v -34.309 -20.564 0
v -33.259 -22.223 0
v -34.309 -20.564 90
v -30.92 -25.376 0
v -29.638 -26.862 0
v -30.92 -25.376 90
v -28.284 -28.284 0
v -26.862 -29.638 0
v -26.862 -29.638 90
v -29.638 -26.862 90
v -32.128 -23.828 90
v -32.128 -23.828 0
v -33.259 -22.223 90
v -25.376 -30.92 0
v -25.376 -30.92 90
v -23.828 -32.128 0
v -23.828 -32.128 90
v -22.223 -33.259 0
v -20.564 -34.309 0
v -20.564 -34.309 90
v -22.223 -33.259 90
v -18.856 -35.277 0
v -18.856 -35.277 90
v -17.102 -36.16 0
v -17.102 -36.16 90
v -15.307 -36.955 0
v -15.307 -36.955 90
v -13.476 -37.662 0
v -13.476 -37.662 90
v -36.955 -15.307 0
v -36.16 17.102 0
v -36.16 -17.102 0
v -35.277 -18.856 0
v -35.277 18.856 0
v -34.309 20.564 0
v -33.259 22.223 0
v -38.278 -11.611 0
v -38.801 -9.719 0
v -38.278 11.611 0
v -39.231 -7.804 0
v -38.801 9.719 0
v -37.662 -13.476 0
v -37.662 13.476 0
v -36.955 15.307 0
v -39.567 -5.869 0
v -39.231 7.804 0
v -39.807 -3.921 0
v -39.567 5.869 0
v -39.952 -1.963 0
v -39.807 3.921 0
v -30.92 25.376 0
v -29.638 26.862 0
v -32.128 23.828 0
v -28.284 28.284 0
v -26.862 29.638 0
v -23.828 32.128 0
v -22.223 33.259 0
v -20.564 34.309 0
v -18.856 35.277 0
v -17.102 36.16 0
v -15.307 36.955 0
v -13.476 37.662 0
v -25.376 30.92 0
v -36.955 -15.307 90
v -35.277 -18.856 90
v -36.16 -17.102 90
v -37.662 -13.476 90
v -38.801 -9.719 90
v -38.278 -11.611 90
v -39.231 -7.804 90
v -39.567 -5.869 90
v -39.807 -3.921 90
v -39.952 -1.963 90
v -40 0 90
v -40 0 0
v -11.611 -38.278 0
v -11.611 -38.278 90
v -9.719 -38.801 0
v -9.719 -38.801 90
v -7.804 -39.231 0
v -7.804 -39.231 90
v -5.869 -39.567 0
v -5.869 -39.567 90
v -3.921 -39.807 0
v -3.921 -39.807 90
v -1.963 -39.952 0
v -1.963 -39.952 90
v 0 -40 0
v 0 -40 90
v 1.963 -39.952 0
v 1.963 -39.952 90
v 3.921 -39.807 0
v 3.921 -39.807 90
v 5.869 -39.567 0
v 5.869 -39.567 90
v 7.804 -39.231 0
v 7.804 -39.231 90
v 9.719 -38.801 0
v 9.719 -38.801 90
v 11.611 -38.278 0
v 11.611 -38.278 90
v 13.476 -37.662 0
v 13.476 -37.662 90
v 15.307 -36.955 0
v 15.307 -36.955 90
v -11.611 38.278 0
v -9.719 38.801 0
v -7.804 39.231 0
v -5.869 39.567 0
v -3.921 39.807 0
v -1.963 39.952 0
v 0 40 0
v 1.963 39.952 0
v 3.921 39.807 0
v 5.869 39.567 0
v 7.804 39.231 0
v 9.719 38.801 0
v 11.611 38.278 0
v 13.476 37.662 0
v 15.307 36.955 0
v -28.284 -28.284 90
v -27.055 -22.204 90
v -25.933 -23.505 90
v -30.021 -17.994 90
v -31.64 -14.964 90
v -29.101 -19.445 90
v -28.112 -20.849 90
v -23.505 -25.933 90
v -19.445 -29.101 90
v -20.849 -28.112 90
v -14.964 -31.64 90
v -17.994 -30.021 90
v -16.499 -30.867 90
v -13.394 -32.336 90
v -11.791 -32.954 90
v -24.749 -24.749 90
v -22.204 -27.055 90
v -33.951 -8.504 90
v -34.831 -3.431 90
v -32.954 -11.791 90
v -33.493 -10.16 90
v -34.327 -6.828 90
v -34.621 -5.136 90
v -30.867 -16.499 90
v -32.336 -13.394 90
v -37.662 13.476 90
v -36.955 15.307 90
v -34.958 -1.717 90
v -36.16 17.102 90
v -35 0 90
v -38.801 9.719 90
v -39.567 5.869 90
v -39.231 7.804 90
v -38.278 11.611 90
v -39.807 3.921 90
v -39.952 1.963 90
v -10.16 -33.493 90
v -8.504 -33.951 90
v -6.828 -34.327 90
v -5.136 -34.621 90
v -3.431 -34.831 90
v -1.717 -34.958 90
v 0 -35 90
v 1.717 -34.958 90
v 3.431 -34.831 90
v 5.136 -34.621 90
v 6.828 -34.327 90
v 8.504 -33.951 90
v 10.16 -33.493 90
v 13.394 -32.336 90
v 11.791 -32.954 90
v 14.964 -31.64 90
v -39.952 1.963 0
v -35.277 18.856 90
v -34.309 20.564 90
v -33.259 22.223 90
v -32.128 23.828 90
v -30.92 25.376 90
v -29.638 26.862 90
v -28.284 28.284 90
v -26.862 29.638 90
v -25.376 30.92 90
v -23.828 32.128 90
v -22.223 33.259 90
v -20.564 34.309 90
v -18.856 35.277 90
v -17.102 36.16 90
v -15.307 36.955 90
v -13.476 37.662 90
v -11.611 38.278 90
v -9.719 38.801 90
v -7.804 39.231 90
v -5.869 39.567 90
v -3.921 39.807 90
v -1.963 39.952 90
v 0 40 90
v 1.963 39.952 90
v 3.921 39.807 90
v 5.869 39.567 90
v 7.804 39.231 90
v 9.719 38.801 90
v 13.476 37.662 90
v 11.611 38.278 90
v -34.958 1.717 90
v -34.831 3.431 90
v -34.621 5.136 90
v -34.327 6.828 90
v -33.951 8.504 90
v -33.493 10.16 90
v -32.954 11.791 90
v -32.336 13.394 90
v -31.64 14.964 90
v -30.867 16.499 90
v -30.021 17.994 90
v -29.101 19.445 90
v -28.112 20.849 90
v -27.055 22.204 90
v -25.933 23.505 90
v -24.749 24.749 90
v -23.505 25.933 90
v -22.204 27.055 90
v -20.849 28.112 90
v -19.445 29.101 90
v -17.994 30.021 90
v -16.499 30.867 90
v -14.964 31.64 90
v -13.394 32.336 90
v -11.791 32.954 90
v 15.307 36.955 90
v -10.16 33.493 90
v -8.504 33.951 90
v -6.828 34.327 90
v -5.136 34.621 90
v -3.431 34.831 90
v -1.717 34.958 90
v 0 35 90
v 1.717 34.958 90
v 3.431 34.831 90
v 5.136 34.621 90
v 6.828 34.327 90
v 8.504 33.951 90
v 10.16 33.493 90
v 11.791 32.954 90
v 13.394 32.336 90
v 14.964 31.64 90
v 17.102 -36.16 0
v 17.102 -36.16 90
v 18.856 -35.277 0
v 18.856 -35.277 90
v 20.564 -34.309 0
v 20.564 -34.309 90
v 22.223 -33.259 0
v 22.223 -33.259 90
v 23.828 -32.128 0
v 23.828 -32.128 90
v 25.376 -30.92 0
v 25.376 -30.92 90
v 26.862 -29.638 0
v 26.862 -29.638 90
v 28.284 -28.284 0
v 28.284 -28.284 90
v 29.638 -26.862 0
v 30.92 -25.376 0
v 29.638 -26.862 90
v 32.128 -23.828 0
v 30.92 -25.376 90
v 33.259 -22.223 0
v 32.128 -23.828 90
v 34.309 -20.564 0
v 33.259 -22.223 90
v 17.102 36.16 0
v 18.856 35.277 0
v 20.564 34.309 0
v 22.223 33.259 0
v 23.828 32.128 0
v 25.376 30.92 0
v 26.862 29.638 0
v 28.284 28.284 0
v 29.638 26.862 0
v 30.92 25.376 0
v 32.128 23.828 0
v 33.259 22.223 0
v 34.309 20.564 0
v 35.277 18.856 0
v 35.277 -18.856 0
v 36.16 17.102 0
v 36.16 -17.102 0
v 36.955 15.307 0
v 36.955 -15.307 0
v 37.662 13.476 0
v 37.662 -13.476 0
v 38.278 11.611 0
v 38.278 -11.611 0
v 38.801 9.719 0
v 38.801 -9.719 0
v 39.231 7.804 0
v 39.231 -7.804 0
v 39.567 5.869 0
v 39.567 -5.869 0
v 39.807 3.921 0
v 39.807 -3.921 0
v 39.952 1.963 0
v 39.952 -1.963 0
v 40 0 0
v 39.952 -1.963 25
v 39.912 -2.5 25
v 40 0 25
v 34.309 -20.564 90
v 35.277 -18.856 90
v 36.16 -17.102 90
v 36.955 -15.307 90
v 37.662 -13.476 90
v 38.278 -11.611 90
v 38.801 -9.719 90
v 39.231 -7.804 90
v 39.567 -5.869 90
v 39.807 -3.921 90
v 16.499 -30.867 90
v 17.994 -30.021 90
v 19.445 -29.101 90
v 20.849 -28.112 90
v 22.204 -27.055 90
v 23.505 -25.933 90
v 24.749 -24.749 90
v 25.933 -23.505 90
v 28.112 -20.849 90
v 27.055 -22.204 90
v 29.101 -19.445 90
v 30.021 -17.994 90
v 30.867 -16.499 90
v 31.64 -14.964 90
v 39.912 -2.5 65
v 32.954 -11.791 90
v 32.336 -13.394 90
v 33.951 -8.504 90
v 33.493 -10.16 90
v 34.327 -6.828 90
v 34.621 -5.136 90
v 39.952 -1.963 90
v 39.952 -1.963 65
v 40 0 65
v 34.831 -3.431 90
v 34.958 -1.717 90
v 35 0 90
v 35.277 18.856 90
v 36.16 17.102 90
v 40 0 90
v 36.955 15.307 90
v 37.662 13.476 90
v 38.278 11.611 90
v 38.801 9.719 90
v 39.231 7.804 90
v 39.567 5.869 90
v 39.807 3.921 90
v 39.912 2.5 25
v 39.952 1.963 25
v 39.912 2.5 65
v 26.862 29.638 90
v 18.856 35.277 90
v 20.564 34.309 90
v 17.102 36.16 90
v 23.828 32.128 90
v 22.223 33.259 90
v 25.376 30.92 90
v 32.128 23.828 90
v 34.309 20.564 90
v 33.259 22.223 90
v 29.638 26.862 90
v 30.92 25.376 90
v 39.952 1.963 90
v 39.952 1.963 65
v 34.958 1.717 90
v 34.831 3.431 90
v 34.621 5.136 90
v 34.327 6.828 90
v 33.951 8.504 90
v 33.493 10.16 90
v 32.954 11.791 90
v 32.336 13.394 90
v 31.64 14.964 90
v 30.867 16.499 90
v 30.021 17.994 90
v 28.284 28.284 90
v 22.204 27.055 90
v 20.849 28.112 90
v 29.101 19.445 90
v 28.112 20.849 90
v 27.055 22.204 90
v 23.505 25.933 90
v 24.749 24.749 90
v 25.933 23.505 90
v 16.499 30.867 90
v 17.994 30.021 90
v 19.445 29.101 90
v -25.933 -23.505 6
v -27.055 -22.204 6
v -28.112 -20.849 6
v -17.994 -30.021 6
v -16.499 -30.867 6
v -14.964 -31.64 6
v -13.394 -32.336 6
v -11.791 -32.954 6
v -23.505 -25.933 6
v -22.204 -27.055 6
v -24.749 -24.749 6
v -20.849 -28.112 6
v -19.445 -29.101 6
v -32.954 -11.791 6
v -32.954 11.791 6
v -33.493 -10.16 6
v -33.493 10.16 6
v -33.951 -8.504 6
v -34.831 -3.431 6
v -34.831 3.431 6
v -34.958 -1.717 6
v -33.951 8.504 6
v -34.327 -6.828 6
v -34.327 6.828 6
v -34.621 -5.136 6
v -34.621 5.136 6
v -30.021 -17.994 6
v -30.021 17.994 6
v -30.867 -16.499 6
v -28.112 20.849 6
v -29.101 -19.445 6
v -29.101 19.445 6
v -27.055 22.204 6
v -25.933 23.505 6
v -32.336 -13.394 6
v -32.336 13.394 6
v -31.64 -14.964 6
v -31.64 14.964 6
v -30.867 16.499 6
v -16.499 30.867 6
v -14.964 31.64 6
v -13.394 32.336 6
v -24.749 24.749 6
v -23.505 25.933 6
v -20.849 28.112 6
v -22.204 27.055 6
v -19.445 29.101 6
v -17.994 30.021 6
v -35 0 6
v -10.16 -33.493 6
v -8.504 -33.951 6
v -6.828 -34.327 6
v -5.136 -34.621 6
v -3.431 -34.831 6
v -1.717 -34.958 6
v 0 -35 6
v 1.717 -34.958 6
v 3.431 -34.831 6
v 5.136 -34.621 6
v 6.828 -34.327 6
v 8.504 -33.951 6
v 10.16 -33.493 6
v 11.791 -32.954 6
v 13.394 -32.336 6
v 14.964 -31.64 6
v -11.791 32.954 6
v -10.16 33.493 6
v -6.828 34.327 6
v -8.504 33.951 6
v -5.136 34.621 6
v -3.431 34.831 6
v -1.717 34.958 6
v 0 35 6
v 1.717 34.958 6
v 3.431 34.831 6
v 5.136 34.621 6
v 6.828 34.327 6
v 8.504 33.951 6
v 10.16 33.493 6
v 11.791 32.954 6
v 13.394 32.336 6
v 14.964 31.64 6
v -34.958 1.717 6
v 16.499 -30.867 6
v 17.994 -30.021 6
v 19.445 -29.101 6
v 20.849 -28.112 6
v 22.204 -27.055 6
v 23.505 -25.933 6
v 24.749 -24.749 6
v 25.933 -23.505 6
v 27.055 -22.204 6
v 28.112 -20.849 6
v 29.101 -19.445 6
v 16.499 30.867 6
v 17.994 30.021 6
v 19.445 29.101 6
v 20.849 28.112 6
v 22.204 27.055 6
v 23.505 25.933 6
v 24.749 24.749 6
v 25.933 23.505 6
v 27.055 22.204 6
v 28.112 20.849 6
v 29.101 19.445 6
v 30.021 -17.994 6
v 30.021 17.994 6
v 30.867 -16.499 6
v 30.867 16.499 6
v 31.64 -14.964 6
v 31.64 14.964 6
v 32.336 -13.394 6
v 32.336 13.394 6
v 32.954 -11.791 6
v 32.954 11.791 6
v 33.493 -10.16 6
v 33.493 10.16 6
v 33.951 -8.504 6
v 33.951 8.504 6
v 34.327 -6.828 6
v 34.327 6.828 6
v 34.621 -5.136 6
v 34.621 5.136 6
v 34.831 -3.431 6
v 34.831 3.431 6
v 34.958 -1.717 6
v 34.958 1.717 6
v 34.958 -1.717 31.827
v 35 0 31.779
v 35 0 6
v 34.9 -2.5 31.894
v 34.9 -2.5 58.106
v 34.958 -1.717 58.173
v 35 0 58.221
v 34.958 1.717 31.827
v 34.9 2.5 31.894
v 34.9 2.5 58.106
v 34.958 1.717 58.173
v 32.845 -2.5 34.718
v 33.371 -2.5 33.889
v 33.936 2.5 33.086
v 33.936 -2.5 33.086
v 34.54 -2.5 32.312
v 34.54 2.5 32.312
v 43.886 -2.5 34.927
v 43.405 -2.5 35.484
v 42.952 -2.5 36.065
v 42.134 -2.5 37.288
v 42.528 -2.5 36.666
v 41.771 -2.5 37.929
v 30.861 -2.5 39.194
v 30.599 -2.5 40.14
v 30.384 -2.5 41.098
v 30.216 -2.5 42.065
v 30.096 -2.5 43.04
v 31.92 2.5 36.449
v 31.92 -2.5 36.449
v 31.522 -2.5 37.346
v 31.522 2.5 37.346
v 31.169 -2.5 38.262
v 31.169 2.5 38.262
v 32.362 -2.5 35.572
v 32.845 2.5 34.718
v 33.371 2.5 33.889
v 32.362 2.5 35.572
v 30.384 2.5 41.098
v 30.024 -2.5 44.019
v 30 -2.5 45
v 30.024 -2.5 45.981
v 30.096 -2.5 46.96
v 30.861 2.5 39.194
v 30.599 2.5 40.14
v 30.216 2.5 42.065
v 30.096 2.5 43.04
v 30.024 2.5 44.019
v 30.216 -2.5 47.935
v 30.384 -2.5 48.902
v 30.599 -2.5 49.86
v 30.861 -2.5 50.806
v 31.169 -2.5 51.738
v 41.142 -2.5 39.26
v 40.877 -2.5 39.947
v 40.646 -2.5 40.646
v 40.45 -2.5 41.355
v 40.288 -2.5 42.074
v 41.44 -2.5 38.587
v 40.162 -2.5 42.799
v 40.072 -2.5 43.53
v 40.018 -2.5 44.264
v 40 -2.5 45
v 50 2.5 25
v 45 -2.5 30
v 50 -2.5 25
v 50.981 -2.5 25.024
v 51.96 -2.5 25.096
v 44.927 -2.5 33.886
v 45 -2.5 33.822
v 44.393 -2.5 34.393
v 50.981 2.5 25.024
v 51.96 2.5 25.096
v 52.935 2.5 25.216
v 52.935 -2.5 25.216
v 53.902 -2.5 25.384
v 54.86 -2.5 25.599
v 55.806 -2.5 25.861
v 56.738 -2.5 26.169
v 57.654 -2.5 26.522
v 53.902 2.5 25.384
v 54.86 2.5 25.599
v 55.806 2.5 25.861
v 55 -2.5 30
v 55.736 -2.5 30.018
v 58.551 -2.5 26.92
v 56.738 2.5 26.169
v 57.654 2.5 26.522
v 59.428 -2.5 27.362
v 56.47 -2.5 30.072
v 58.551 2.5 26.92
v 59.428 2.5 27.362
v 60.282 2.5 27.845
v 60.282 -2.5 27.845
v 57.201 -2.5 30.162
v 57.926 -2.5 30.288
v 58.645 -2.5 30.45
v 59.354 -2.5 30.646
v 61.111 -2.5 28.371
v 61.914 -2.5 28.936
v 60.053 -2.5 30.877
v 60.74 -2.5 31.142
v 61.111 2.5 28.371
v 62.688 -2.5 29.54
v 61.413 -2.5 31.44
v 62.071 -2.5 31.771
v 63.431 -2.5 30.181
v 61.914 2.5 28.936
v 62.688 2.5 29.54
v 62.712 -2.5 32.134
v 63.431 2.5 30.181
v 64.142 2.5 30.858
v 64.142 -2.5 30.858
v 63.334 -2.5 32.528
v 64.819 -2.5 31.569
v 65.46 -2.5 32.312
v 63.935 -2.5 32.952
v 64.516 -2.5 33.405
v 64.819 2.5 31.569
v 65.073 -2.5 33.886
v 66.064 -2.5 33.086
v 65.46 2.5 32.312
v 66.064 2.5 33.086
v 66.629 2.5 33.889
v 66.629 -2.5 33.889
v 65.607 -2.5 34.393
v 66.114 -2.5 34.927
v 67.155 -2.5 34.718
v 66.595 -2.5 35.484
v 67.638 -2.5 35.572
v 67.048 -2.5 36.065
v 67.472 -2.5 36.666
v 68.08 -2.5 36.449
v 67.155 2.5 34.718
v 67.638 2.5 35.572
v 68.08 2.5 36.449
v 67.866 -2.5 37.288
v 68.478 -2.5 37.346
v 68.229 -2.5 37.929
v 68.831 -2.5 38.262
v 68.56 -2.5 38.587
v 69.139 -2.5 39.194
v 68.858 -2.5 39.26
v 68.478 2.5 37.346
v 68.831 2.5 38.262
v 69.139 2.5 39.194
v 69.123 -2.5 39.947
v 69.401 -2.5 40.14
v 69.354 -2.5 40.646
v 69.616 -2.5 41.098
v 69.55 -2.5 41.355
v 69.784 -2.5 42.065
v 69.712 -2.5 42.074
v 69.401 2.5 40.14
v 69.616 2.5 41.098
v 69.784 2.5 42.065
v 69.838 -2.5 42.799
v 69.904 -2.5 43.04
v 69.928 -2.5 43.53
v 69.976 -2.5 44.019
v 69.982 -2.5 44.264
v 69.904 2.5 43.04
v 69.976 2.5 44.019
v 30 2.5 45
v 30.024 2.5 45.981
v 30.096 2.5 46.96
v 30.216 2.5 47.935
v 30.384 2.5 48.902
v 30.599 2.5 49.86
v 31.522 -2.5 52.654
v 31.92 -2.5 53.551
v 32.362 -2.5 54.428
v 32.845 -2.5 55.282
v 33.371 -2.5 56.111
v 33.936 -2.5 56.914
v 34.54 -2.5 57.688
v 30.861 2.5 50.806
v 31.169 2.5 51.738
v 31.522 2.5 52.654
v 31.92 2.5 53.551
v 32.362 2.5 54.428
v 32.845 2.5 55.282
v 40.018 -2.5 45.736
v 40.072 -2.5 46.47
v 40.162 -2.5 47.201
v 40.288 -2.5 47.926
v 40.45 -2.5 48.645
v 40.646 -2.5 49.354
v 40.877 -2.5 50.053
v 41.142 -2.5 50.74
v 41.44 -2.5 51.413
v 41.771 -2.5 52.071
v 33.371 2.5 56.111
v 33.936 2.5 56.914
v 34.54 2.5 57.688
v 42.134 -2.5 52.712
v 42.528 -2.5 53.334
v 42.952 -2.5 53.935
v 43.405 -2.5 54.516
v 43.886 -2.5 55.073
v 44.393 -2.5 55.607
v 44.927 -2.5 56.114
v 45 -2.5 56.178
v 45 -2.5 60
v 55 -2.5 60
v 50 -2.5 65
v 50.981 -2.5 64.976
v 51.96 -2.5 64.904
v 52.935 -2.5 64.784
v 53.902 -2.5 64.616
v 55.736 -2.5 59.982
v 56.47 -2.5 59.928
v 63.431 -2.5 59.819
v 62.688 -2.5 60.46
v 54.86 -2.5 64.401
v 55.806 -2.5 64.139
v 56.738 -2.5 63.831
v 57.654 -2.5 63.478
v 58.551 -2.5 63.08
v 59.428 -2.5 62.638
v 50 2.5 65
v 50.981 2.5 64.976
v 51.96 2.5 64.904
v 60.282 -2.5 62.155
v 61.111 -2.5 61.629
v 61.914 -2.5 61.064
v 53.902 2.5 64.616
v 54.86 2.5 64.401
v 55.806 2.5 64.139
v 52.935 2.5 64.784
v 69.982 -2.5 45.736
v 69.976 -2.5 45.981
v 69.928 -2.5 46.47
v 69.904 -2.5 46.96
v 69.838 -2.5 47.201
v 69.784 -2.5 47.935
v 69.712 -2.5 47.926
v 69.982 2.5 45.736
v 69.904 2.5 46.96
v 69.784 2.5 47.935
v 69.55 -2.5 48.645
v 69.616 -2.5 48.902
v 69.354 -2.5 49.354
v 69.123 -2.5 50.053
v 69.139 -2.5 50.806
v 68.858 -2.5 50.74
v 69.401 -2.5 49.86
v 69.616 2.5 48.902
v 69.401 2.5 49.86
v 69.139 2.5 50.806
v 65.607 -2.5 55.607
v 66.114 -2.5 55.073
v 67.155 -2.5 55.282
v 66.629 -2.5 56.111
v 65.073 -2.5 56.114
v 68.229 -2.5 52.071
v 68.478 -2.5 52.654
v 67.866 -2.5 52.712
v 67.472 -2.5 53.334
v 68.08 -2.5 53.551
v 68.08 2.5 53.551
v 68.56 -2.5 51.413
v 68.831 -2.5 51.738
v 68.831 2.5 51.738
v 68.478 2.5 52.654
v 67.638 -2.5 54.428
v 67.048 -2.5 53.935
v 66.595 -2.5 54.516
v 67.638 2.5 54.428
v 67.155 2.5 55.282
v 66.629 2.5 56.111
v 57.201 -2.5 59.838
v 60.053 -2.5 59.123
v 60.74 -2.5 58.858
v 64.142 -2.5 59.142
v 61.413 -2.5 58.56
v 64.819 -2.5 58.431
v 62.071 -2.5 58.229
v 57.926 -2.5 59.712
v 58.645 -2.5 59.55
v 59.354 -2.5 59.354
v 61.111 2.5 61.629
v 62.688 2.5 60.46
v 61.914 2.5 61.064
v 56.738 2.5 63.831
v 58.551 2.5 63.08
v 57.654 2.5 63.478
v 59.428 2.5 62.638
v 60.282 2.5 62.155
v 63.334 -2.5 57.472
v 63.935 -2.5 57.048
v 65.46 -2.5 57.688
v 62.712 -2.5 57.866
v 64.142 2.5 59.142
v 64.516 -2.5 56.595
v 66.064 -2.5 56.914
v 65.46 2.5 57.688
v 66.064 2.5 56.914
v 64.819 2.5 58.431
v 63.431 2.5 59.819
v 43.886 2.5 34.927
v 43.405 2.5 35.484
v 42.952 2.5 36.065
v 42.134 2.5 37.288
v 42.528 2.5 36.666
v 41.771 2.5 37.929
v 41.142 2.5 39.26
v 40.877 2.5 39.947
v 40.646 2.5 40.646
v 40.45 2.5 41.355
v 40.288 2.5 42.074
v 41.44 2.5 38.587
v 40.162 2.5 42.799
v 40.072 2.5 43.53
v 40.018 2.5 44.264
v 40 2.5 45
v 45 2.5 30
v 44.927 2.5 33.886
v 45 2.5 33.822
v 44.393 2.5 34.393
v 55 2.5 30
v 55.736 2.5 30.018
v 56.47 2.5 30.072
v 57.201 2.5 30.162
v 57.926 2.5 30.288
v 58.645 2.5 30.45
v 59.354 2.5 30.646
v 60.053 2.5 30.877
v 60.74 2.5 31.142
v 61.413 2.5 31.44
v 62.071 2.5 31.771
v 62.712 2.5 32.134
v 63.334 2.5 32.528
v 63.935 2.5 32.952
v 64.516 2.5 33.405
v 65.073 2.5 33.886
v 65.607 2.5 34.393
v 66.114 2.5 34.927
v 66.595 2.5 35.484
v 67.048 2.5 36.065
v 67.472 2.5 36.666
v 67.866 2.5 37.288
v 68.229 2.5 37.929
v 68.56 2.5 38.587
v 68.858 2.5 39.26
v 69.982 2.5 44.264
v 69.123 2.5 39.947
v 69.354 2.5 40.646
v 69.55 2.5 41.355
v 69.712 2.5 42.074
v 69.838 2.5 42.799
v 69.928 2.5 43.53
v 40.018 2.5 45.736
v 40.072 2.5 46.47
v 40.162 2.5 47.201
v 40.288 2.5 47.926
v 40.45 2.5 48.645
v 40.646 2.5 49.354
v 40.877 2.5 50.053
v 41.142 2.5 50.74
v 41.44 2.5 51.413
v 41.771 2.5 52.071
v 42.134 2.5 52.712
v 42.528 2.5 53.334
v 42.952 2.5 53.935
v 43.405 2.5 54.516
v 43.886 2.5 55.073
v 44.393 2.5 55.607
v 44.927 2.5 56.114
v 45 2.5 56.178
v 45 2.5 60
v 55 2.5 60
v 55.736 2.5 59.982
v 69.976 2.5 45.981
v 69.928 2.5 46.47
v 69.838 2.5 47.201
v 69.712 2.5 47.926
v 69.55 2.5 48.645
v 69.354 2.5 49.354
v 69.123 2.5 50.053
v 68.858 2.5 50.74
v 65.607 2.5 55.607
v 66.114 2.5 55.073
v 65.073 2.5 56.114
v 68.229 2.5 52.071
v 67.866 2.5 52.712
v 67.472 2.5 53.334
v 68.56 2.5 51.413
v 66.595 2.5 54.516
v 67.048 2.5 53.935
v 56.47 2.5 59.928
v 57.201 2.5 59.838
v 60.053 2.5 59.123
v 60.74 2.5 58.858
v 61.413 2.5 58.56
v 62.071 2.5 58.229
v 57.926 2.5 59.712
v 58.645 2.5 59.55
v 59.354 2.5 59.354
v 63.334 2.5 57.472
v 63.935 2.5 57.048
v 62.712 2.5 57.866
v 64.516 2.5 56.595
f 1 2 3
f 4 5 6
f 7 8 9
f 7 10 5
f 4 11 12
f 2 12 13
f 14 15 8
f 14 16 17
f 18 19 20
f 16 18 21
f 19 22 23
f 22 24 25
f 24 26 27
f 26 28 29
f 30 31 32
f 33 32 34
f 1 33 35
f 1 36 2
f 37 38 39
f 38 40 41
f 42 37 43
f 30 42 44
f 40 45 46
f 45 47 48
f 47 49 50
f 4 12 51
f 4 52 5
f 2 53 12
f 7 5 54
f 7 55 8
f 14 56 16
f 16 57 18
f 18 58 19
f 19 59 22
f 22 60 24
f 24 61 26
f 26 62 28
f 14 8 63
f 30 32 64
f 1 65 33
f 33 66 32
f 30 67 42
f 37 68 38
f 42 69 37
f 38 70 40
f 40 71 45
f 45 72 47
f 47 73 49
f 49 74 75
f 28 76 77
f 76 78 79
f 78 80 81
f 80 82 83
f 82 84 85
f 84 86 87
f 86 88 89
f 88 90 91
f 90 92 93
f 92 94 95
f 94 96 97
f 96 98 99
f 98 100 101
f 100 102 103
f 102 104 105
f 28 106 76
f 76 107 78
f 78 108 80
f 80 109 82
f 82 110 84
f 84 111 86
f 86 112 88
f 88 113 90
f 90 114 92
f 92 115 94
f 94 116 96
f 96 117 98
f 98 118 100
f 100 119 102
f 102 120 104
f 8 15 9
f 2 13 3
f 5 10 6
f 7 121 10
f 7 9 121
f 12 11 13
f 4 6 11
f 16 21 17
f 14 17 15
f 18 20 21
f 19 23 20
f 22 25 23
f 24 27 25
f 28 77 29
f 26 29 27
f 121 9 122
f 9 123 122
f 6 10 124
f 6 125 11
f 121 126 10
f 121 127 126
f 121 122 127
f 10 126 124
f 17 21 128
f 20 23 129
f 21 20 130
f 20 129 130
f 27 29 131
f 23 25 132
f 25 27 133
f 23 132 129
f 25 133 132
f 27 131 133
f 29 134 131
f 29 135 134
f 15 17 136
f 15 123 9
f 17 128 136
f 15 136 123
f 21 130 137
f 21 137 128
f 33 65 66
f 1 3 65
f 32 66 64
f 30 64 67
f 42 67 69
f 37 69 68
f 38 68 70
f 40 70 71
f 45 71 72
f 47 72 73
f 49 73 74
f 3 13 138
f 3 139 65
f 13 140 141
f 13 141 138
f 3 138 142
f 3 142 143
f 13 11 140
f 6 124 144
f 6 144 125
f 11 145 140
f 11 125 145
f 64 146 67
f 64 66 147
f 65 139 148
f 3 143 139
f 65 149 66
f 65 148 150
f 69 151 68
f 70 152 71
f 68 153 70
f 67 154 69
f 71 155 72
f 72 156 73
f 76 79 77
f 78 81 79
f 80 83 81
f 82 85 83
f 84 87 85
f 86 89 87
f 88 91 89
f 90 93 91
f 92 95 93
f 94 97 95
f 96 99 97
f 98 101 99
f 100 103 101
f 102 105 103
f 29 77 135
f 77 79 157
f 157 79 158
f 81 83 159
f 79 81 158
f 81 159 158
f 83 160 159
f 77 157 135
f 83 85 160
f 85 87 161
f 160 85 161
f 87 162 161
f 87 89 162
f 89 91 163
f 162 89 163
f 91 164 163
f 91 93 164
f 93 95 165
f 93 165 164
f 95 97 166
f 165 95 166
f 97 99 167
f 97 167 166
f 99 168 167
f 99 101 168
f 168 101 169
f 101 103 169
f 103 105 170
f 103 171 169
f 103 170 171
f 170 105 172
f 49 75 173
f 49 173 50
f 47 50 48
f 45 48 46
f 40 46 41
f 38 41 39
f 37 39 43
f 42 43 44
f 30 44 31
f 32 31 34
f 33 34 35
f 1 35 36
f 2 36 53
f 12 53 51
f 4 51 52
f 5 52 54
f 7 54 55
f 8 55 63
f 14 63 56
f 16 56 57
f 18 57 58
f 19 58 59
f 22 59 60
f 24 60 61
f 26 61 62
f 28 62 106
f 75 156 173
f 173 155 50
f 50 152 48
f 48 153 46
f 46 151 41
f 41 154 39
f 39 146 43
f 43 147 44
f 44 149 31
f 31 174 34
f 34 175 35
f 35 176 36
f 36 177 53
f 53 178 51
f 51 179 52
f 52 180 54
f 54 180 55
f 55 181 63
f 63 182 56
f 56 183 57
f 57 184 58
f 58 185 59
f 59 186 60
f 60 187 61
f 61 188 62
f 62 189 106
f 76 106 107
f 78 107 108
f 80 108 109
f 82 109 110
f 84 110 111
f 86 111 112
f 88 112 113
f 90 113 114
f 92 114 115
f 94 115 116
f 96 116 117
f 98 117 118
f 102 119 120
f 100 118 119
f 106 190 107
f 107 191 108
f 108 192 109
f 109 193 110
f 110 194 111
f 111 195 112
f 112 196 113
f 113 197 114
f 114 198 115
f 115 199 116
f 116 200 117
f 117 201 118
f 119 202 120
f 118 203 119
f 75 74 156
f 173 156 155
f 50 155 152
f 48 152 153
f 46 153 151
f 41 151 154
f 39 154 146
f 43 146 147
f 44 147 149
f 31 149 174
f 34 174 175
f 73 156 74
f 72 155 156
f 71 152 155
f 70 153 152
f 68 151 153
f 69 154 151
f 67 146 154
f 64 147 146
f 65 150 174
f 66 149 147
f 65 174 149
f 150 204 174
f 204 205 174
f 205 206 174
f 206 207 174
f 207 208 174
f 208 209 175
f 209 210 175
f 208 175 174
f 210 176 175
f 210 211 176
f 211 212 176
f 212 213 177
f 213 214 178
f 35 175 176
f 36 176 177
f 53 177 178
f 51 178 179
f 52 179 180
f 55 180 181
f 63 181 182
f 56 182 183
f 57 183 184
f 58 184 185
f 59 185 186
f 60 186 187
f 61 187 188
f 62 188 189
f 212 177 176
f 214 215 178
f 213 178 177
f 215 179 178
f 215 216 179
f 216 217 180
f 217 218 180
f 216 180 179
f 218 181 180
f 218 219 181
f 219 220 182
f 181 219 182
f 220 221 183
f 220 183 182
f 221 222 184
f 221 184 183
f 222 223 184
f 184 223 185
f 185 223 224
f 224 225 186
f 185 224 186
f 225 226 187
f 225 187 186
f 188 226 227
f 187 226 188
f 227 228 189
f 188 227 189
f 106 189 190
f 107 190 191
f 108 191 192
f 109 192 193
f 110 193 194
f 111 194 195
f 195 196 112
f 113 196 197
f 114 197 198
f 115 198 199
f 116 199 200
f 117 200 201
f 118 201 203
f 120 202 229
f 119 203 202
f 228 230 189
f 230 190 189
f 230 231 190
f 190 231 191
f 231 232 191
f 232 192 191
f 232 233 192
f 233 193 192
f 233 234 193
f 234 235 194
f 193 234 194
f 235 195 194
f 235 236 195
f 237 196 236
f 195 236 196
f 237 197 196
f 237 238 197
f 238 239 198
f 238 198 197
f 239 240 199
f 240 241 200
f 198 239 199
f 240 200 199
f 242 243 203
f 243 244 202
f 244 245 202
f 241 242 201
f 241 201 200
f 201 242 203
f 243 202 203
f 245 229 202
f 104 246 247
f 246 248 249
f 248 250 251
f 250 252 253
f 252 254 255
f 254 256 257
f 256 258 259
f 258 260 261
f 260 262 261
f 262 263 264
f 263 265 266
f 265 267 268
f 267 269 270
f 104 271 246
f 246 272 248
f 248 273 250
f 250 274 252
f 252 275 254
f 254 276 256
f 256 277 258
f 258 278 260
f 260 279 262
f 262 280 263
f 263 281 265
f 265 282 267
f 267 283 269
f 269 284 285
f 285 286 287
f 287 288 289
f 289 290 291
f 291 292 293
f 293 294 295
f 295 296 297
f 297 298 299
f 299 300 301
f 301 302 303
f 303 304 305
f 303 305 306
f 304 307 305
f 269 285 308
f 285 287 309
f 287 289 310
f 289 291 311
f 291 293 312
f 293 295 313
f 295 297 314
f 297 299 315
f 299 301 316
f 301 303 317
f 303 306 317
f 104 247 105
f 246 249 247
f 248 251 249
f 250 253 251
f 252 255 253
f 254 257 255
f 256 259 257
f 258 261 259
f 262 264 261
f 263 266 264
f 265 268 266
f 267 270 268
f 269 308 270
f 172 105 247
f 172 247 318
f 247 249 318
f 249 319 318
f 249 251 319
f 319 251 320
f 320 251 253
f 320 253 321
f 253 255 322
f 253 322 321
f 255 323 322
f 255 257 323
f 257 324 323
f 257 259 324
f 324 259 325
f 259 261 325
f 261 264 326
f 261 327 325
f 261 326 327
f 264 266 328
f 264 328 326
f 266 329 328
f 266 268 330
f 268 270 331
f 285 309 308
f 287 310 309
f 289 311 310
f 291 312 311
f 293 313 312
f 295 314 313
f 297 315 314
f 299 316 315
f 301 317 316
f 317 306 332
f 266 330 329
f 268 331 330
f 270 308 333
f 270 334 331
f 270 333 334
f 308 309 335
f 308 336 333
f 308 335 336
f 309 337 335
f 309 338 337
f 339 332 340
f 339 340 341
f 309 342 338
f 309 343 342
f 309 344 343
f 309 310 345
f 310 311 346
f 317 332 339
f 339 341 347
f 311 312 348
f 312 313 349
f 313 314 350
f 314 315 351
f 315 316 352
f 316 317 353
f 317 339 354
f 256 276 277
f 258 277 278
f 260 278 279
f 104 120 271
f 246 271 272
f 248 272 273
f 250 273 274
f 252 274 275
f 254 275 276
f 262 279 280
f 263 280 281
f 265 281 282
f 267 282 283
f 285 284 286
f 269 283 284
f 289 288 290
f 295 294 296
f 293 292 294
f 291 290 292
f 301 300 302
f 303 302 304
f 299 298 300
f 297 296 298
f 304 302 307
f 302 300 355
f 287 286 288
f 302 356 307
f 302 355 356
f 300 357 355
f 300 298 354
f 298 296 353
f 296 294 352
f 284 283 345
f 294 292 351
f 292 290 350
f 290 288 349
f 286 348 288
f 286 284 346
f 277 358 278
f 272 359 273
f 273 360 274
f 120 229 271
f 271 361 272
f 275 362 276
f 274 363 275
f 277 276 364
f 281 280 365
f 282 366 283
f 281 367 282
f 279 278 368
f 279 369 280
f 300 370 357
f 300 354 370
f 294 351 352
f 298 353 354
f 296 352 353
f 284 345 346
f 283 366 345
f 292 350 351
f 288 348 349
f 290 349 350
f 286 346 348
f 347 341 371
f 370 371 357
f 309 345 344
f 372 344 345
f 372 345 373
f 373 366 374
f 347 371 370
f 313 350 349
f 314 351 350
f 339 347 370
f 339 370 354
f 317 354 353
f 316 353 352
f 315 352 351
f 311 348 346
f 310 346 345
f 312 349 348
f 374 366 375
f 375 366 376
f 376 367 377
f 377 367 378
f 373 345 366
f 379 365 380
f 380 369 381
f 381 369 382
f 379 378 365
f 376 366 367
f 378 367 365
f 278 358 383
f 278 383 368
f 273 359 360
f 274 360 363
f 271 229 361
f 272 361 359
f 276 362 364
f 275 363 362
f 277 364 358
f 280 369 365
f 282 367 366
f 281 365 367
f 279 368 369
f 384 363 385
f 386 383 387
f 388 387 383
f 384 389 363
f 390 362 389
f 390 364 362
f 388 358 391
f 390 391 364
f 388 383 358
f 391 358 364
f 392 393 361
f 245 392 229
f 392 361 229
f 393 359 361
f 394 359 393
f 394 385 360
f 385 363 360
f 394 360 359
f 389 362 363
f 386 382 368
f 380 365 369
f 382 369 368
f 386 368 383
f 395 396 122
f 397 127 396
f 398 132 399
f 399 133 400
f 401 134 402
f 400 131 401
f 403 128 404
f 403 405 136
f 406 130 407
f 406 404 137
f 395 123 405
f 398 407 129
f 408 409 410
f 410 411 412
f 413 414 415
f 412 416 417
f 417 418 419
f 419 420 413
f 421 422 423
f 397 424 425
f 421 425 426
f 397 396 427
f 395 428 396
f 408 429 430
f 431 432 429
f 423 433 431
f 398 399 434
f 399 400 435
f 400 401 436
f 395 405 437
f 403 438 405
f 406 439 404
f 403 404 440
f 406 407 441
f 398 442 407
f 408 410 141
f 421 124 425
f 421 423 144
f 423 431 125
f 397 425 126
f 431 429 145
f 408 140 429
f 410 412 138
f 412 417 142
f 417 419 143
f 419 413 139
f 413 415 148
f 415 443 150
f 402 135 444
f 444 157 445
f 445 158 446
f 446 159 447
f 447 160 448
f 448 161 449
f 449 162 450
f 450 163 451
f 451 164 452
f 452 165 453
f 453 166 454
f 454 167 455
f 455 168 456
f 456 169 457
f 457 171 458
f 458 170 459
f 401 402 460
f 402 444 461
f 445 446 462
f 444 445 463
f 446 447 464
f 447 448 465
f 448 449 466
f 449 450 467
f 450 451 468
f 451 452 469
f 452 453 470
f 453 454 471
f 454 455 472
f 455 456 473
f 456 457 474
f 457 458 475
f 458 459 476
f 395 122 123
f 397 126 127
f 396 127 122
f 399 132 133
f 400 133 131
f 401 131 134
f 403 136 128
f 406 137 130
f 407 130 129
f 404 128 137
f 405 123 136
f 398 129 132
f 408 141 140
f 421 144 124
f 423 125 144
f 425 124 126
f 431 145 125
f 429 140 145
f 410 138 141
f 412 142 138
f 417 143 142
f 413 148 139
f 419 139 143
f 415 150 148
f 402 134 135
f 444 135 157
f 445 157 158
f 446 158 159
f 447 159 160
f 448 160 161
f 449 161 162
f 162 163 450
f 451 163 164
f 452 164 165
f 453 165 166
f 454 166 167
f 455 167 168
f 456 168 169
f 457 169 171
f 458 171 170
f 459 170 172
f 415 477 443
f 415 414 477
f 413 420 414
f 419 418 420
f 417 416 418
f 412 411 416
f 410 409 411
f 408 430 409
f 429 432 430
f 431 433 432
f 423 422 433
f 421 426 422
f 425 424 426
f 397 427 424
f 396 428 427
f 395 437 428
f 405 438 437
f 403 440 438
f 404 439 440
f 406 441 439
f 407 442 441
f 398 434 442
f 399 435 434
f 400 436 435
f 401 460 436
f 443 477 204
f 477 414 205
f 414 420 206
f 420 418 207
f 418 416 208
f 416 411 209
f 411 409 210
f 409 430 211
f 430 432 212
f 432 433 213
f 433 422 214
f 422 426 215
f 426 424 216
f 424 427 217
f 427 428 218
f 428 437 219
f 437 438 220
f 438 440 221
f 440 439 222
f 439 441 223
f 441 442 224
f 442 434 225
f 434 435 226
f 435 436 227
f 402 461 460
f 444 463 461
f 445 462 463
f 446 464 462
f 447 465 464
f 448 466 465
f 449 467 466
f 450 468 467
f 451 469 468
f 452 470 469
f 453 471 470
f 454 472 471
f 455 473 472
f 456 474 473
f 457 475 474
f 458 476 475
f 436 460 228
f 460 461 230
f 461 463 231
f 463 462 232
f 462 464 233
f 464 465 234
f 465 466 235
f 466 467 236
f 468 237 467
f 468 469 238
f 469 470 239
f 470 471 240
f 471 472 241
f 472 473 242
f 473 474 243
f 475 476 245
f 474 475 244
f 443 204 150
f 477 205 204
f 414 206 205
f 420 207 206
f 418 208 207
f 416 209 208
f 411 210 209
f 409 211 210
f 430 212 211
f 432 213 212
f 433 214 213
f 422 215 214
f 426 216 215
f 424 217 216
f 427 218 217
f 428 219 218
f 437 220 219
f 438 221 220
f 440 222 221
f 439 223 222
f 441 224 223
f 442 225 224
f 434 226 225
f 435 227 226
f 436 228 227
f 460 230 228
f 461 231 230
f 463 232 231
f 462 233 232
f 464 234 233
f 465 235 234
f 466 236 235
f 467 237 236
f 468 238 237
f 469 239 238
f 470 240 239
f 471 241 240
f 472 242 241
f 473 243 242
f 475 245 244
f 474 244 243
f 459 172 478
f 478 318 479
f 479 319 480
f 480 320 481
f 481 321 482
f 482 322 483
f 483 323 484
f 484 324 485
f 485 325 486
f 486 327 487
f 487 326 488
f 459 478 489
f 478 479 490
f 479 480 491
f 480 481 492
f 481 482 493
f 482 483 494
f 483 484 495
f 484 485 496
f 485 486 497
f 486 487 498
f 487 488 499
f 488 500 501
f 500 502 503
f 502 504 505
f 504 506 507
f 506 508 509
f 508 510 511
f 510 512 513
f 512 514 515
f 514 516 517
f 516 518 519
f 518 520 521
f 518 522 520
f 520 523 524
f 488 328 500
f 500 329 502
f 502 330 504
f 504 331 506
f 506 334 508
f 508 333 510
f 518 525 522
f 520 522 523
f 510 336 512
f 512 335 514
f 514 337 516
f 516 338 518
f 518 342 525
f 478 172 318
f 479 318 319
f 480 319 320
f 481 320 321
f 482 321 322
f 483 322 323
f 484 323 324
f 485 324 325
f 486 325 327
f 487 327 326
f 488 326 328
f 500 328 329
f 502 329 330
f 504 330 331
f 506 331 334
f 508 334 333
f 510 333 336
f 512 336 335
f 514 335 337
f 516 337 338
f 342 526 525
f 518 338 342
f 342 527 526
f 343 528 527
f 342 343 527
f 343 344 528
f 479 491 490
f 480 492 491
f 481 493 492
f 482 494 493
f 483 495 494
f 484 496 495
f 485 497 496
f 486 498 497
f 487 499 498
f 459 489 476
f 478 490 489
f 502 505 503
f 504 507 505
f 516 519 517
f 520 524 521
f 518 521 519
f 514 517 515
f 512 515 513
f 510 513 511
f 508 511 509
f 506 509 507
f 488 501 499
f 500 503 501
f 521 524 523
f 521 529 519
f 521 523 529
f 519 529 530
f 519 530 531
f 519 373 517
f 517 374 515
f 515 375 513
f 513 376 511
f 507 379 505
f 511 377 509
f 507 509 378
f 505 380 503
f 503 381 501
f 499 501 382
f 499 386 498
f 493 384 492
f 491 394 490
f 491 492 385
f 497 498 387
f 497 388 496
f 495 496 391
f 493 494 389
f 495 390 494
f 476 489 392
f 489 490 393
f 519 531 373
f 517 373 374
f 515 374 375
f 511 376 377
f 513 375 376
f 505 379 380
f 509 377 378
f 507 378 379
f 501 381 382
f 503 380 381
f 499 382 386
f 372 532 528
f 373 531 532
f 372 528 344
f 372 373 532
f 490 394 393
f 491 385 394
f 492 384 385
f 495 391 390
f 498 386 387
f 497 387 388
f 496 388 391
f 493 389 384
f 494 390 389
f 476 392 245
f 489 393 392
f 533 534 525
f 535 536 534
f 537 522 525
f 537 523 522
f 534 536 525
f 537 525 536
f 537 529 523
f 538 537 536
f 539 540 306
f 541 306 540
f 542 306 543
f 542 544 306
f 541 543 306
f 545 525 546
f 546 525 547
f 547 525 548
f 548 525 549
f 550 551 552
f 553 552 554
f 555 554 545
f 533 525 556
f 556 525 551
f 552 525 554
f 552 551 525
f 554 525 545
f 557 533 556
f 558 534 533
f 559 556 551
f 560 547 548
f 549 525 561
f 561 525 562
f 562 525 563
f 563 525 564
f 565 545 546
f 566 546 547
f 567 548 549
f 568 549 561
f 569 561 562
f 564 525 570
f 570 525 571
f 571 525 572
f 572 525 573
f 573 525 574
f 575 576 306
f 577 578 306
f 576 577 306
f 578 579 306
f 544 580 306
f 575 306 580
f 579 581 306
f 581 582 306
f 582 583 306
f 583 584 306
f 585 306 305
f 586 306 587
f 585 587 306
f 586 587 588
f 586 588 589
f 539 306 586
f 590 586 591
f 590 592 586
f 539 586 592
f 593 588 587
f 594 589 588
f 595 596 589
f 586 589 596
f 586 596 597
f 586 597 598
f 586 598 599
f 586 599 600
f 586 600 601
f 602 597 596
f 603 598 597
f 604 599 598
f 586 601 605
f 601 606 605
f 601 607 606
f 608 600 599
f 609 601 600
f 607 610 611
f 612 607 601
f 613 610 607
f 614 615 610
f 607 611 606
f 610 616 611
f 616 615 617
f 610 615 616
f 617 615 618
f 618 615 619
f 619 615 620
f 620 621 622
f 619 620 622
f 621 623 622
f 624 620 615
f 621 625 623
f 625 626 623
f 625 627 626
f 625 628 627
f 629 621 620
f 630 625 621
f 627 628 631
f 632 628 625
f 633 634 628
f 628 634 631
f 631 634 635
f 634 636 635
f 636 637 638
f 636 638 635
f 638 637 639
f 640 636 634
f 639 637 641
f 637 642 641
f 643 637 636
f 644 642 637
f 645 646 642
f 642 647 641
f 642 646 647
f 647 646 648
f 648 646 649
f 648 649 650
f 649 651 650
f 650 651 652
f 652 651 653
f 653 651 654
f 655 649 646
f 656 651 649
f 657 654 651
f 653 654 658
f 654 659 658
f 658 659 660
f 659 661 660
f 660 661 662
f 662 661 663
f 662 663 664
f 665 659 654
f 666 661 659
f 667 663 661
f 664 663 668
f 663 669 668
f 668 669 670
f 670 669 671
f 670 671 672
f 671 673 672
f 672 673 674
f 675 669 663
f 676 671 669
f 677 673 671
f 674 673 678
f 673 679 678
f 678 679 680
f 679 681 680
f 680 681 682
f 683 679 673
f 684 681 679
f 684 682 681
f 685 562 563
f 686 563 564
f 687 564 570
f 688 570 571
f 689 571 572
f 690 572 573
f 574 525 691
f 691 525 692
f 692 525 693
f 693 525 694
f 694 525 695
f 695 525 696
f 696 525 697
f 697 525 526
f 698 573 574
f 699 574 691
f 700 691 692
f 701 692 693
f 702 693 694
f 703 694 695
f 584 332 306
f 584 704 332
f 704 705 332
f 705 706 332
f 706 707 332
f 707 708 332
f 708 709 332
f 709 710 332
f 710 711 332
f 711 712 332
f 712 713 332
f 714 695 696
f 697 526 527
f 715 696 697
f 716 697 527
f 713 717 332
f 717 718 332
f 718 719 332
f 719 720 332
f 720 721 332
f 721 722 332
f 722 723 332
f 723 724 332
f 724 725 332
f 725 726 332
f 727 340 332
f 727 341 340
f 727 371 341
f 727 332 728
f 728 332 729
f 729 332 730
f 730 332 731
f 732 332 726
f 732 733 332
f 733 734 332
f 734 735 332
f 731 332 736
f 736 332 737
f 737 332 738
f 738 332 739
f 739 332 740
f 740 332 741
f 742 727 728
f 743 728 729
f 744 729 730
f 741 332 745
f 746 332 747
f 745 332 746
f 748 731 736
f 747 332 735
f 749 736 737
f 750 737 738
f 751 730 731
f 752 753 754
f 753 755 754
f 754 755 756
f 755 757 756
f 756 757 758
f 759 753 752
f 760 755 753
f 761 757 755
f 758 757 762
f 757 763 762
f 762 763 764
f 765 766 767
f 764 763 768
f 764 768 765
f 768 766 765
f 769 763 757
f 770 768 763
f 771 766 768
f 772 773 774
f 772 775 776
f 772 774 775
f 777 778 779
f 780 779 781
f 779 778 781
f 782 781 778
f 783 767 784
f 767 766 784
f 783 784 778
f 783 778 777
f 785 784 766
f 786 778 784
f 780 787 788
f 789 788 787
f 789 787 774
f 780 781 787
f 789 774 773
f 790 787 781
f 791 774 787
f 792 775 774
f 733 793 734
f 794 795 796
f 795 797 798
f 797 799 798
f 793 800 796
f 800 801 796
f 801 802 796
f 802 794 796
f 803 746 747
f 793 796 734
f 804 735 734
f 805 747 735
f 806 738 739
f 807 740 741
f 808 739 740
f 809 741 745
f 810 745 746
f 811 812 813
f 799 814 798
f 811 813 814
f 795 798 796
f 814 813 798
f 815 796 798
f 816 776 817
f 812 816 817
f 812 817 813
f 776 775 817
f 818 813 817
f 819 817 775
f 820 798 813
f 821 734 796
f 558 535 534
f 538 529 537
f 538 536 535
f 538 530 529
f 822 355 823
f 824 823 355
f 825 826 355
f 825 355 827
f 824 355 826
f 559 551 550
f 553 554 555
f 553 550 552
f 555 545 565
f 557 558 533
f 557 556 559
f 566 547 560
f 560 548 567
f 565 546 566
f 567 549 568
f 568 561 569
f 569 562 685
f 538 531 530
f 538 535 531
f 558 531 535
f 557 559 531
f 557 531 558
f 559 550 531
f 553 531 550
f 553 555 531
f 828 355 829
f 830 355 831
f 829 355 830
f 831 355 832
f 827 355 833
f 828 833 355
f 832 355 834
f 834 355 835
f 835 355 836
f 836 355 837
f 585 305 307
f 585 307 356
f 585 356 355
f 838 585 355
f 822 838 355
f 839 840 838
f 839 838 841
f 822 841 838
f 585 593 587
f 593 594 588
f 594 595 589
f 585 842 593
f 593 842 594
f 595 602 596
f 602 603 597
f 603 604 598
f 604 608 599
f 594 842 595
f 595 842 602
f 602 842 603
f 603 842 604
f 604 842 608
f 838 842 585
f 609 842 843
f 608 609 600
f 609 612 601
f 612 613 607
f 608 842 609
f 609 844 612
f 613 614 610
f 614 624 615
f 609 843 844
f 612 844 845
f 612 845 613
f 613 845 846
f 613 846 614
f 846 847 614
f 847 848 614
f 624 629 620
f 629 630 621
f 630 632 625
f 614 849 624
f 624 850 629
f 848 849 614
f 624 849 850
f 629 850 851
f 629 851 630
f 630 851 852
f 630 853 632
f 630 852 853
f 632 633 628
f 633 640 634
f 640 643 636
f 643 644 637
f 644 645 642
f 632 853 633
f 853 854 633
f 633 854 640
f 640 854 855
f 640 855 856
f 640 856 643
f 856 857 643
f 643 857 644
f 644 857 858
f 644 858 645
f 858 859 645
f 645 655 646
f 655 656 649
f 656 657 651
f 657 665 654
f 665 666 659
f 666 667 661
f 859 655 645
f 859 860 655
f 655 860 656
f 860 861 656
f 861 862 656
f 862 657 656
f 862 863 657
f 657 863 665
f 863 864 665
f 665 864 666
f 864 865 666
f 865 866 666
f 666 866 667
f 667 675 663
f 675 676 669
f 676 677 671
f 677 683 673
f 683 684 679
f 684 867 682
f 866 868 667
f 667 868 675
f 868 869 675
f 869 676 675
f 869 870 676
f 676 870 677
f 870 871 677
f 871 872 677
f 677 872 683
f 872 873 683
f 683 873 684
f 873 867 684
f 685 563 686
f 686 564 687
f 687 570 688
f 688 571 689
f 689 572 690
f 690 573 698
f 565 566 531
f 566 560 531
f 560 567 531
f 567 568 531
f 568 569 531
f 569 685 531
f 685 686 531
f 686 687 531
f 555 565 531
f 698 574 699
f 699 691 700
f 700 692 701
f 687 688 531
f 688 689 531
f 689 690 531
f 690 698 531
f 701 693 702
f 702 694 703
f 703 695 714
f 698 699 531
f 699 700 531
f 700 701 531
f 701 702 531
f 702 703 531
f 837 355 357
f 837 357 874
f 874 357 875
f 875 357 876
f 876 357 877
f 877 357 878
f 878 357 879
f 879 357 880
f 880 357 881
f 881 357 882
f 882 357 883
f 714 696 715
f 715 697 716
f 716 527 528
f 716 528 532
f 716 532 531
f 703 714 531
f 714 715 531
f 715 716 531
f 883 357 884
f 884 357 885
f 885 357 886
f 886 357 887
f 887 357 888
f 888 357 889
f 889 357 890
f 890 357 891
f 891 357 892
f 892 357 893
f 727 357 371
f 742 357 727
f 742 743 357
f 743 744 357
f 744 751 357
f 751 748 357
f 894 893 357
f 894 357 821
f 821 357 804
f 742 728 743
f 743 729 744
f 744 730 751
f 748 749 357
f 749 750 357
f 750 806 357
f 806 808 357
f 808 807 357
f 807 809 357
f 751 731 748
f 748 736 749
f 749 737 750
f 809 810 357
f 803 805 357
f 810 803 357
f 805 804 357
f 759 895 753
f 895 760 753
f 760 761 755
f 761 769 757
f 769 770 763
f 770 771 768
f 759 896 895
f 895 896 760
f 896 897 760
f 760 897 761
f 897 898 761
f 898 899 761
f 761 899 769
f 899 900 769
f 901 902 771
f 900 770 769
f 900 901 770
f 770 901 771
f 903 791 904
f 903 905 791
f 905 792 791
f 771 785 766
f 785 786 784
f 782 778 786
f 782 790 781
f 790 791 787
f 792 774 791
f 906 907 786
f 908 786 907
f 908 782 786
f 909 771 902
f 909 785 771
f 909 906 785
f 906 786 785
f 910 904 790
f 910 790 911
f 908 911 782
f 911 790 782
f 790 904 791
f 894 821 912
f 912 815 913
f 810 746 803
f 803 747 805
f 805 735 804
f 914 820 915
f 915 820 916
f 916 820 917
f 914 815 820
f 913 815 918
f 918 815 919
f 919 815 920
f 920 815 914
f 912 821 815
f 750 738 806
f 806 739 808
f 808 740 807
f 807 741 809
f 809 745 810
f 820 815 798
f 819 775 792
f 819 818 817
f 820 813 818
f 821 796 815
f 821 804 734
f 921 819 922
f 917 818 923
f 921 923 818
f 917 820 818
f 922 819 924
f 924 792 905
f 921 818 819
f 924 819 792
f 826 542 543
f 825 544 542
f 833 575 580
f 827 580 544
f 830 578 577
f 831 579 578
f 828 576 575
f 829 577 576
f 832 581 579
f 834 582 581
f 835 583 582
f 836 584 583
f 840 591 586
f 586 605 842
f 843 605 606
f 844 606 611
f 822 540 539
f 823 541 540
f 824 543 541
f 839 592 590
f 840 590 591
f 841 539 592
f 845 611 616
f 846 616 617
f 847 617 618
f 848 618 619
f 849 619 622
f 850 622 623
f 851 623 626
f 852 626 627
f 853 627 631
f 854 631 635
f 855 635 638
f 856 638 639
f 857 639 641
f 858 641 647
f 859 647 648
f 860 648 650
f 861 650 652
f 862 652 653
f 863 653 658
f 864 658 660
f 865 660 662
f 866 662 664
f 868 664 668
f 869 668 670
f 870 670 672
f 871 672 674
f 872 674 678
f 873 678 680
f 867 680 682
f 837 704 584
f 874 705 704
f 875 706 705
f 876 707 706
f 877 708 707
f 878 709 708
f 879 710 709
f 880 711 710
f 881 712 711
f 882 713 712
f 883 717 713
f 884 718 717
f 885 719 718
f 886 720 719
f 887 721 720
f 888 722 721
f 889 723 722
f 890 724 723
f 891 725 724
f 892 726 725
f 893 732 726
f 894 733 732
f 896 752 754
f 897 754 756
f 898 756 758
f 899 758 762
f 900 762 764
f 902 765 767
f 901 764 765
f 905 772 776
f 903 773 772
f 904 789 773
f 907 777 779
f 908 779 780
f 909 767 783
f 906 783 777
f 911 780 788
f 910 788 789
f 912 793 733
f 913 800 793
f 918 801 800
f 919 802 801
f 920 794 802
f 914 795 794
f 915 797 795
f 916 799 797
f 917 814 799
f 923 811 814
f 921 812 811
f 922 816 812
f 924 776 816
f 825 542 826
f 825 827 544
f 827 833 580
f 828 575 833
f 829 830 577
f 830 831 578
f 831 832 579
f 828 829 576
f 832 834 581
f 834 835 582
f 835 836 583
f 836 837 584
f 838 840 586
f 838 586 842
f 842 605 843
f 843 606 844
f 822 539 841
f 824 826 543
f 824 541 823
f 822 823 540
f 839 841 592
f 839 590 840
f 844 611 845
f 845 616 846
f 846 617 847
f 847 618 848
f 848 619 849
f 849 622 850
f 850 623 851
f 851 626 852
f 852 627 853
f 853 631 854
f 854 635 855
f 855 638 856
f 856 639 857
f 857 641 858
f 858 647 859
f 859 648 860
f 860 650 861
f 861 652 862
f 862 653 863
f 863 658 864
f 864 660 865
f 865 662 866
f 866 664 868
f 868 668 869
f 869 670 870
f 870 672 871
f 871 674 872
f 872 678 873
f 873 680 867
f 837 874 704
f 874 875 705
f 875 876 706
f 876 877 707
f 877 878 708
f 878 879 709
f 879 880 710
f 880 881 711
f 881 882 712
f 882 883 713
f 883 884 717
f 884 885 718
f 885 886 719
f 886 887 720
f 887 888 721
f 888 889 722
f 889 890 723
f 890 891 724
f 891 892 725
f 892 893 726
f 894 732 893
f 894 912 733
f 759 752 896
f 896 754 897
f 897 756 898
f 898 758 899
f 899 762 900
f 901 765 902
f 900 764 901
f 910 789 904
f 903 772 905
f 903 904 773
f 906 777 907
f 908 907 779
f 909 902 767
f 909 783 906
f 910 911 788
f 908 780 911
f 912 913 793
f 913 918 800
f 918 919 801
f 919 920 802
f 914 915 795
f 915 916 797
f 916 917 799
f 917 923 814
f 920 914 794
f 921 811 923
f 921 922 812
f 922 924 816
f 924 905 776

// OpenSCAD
$fn = 128;

// Mug dimensions
outer_d   = 80;
inner_d   = 70;
mug_h     = 90;
bottom_t  = 6;

// Handle inner opening dimensions
handle_open_w = 25;   // radial width
handle_open_h = 30;   // vertical height

// Handle thickness
handle_t = 5;

// Derived radii
outer_r = outer_d / 2;
inner_r = inner_d / 2;

// Handle outer dimensions
handle_outer_w = handle_open_w + handle_t;
handle_outer_h = handle_open_h + 2 * handle_t;

// Placement
handle_center_z = mug_h / 2;
attach_overlap = 1.0;

// 2D D-shape on XY plane:
// flat side at x = x_left, rounded side toward +X
module d_shape_2d(x_left, y_center, total_w, total_h) {
    r = total_h / 2;
    rect_w = total_w - r;
    union() {
        translate([x_left, y_center - r])
            square([rect_w, total_h], center = false);
        translate([x_left + rect_w, y_center])
            circle(r = r);
    }
}

module mug_body() {
    difference() {
        cylinder(h = mug_h, r = outer_r);
        translate([0, 0, bottom_t])
            cylinder(h = mug_h - bottom_t + 0.01, r = inner_r);
    }
}

module handle() {
    rotate([90, 0, 0]) {
        difference() {
            linear_extrude(height = handle_t, center = true)
                d_shape_2d(outer_r - attach_overlap, handle_center_z, handle_outer_w + attach_overlap, handle_outer_h);

            linear_extrude(height = handle_t + 2, center = true)
                d_shape_2d(outer_r + handle_t, handle_center_z, handle_open_w, handle_open_h);
        }
    }
}

union() {
    mug_body();
    handle();
}
